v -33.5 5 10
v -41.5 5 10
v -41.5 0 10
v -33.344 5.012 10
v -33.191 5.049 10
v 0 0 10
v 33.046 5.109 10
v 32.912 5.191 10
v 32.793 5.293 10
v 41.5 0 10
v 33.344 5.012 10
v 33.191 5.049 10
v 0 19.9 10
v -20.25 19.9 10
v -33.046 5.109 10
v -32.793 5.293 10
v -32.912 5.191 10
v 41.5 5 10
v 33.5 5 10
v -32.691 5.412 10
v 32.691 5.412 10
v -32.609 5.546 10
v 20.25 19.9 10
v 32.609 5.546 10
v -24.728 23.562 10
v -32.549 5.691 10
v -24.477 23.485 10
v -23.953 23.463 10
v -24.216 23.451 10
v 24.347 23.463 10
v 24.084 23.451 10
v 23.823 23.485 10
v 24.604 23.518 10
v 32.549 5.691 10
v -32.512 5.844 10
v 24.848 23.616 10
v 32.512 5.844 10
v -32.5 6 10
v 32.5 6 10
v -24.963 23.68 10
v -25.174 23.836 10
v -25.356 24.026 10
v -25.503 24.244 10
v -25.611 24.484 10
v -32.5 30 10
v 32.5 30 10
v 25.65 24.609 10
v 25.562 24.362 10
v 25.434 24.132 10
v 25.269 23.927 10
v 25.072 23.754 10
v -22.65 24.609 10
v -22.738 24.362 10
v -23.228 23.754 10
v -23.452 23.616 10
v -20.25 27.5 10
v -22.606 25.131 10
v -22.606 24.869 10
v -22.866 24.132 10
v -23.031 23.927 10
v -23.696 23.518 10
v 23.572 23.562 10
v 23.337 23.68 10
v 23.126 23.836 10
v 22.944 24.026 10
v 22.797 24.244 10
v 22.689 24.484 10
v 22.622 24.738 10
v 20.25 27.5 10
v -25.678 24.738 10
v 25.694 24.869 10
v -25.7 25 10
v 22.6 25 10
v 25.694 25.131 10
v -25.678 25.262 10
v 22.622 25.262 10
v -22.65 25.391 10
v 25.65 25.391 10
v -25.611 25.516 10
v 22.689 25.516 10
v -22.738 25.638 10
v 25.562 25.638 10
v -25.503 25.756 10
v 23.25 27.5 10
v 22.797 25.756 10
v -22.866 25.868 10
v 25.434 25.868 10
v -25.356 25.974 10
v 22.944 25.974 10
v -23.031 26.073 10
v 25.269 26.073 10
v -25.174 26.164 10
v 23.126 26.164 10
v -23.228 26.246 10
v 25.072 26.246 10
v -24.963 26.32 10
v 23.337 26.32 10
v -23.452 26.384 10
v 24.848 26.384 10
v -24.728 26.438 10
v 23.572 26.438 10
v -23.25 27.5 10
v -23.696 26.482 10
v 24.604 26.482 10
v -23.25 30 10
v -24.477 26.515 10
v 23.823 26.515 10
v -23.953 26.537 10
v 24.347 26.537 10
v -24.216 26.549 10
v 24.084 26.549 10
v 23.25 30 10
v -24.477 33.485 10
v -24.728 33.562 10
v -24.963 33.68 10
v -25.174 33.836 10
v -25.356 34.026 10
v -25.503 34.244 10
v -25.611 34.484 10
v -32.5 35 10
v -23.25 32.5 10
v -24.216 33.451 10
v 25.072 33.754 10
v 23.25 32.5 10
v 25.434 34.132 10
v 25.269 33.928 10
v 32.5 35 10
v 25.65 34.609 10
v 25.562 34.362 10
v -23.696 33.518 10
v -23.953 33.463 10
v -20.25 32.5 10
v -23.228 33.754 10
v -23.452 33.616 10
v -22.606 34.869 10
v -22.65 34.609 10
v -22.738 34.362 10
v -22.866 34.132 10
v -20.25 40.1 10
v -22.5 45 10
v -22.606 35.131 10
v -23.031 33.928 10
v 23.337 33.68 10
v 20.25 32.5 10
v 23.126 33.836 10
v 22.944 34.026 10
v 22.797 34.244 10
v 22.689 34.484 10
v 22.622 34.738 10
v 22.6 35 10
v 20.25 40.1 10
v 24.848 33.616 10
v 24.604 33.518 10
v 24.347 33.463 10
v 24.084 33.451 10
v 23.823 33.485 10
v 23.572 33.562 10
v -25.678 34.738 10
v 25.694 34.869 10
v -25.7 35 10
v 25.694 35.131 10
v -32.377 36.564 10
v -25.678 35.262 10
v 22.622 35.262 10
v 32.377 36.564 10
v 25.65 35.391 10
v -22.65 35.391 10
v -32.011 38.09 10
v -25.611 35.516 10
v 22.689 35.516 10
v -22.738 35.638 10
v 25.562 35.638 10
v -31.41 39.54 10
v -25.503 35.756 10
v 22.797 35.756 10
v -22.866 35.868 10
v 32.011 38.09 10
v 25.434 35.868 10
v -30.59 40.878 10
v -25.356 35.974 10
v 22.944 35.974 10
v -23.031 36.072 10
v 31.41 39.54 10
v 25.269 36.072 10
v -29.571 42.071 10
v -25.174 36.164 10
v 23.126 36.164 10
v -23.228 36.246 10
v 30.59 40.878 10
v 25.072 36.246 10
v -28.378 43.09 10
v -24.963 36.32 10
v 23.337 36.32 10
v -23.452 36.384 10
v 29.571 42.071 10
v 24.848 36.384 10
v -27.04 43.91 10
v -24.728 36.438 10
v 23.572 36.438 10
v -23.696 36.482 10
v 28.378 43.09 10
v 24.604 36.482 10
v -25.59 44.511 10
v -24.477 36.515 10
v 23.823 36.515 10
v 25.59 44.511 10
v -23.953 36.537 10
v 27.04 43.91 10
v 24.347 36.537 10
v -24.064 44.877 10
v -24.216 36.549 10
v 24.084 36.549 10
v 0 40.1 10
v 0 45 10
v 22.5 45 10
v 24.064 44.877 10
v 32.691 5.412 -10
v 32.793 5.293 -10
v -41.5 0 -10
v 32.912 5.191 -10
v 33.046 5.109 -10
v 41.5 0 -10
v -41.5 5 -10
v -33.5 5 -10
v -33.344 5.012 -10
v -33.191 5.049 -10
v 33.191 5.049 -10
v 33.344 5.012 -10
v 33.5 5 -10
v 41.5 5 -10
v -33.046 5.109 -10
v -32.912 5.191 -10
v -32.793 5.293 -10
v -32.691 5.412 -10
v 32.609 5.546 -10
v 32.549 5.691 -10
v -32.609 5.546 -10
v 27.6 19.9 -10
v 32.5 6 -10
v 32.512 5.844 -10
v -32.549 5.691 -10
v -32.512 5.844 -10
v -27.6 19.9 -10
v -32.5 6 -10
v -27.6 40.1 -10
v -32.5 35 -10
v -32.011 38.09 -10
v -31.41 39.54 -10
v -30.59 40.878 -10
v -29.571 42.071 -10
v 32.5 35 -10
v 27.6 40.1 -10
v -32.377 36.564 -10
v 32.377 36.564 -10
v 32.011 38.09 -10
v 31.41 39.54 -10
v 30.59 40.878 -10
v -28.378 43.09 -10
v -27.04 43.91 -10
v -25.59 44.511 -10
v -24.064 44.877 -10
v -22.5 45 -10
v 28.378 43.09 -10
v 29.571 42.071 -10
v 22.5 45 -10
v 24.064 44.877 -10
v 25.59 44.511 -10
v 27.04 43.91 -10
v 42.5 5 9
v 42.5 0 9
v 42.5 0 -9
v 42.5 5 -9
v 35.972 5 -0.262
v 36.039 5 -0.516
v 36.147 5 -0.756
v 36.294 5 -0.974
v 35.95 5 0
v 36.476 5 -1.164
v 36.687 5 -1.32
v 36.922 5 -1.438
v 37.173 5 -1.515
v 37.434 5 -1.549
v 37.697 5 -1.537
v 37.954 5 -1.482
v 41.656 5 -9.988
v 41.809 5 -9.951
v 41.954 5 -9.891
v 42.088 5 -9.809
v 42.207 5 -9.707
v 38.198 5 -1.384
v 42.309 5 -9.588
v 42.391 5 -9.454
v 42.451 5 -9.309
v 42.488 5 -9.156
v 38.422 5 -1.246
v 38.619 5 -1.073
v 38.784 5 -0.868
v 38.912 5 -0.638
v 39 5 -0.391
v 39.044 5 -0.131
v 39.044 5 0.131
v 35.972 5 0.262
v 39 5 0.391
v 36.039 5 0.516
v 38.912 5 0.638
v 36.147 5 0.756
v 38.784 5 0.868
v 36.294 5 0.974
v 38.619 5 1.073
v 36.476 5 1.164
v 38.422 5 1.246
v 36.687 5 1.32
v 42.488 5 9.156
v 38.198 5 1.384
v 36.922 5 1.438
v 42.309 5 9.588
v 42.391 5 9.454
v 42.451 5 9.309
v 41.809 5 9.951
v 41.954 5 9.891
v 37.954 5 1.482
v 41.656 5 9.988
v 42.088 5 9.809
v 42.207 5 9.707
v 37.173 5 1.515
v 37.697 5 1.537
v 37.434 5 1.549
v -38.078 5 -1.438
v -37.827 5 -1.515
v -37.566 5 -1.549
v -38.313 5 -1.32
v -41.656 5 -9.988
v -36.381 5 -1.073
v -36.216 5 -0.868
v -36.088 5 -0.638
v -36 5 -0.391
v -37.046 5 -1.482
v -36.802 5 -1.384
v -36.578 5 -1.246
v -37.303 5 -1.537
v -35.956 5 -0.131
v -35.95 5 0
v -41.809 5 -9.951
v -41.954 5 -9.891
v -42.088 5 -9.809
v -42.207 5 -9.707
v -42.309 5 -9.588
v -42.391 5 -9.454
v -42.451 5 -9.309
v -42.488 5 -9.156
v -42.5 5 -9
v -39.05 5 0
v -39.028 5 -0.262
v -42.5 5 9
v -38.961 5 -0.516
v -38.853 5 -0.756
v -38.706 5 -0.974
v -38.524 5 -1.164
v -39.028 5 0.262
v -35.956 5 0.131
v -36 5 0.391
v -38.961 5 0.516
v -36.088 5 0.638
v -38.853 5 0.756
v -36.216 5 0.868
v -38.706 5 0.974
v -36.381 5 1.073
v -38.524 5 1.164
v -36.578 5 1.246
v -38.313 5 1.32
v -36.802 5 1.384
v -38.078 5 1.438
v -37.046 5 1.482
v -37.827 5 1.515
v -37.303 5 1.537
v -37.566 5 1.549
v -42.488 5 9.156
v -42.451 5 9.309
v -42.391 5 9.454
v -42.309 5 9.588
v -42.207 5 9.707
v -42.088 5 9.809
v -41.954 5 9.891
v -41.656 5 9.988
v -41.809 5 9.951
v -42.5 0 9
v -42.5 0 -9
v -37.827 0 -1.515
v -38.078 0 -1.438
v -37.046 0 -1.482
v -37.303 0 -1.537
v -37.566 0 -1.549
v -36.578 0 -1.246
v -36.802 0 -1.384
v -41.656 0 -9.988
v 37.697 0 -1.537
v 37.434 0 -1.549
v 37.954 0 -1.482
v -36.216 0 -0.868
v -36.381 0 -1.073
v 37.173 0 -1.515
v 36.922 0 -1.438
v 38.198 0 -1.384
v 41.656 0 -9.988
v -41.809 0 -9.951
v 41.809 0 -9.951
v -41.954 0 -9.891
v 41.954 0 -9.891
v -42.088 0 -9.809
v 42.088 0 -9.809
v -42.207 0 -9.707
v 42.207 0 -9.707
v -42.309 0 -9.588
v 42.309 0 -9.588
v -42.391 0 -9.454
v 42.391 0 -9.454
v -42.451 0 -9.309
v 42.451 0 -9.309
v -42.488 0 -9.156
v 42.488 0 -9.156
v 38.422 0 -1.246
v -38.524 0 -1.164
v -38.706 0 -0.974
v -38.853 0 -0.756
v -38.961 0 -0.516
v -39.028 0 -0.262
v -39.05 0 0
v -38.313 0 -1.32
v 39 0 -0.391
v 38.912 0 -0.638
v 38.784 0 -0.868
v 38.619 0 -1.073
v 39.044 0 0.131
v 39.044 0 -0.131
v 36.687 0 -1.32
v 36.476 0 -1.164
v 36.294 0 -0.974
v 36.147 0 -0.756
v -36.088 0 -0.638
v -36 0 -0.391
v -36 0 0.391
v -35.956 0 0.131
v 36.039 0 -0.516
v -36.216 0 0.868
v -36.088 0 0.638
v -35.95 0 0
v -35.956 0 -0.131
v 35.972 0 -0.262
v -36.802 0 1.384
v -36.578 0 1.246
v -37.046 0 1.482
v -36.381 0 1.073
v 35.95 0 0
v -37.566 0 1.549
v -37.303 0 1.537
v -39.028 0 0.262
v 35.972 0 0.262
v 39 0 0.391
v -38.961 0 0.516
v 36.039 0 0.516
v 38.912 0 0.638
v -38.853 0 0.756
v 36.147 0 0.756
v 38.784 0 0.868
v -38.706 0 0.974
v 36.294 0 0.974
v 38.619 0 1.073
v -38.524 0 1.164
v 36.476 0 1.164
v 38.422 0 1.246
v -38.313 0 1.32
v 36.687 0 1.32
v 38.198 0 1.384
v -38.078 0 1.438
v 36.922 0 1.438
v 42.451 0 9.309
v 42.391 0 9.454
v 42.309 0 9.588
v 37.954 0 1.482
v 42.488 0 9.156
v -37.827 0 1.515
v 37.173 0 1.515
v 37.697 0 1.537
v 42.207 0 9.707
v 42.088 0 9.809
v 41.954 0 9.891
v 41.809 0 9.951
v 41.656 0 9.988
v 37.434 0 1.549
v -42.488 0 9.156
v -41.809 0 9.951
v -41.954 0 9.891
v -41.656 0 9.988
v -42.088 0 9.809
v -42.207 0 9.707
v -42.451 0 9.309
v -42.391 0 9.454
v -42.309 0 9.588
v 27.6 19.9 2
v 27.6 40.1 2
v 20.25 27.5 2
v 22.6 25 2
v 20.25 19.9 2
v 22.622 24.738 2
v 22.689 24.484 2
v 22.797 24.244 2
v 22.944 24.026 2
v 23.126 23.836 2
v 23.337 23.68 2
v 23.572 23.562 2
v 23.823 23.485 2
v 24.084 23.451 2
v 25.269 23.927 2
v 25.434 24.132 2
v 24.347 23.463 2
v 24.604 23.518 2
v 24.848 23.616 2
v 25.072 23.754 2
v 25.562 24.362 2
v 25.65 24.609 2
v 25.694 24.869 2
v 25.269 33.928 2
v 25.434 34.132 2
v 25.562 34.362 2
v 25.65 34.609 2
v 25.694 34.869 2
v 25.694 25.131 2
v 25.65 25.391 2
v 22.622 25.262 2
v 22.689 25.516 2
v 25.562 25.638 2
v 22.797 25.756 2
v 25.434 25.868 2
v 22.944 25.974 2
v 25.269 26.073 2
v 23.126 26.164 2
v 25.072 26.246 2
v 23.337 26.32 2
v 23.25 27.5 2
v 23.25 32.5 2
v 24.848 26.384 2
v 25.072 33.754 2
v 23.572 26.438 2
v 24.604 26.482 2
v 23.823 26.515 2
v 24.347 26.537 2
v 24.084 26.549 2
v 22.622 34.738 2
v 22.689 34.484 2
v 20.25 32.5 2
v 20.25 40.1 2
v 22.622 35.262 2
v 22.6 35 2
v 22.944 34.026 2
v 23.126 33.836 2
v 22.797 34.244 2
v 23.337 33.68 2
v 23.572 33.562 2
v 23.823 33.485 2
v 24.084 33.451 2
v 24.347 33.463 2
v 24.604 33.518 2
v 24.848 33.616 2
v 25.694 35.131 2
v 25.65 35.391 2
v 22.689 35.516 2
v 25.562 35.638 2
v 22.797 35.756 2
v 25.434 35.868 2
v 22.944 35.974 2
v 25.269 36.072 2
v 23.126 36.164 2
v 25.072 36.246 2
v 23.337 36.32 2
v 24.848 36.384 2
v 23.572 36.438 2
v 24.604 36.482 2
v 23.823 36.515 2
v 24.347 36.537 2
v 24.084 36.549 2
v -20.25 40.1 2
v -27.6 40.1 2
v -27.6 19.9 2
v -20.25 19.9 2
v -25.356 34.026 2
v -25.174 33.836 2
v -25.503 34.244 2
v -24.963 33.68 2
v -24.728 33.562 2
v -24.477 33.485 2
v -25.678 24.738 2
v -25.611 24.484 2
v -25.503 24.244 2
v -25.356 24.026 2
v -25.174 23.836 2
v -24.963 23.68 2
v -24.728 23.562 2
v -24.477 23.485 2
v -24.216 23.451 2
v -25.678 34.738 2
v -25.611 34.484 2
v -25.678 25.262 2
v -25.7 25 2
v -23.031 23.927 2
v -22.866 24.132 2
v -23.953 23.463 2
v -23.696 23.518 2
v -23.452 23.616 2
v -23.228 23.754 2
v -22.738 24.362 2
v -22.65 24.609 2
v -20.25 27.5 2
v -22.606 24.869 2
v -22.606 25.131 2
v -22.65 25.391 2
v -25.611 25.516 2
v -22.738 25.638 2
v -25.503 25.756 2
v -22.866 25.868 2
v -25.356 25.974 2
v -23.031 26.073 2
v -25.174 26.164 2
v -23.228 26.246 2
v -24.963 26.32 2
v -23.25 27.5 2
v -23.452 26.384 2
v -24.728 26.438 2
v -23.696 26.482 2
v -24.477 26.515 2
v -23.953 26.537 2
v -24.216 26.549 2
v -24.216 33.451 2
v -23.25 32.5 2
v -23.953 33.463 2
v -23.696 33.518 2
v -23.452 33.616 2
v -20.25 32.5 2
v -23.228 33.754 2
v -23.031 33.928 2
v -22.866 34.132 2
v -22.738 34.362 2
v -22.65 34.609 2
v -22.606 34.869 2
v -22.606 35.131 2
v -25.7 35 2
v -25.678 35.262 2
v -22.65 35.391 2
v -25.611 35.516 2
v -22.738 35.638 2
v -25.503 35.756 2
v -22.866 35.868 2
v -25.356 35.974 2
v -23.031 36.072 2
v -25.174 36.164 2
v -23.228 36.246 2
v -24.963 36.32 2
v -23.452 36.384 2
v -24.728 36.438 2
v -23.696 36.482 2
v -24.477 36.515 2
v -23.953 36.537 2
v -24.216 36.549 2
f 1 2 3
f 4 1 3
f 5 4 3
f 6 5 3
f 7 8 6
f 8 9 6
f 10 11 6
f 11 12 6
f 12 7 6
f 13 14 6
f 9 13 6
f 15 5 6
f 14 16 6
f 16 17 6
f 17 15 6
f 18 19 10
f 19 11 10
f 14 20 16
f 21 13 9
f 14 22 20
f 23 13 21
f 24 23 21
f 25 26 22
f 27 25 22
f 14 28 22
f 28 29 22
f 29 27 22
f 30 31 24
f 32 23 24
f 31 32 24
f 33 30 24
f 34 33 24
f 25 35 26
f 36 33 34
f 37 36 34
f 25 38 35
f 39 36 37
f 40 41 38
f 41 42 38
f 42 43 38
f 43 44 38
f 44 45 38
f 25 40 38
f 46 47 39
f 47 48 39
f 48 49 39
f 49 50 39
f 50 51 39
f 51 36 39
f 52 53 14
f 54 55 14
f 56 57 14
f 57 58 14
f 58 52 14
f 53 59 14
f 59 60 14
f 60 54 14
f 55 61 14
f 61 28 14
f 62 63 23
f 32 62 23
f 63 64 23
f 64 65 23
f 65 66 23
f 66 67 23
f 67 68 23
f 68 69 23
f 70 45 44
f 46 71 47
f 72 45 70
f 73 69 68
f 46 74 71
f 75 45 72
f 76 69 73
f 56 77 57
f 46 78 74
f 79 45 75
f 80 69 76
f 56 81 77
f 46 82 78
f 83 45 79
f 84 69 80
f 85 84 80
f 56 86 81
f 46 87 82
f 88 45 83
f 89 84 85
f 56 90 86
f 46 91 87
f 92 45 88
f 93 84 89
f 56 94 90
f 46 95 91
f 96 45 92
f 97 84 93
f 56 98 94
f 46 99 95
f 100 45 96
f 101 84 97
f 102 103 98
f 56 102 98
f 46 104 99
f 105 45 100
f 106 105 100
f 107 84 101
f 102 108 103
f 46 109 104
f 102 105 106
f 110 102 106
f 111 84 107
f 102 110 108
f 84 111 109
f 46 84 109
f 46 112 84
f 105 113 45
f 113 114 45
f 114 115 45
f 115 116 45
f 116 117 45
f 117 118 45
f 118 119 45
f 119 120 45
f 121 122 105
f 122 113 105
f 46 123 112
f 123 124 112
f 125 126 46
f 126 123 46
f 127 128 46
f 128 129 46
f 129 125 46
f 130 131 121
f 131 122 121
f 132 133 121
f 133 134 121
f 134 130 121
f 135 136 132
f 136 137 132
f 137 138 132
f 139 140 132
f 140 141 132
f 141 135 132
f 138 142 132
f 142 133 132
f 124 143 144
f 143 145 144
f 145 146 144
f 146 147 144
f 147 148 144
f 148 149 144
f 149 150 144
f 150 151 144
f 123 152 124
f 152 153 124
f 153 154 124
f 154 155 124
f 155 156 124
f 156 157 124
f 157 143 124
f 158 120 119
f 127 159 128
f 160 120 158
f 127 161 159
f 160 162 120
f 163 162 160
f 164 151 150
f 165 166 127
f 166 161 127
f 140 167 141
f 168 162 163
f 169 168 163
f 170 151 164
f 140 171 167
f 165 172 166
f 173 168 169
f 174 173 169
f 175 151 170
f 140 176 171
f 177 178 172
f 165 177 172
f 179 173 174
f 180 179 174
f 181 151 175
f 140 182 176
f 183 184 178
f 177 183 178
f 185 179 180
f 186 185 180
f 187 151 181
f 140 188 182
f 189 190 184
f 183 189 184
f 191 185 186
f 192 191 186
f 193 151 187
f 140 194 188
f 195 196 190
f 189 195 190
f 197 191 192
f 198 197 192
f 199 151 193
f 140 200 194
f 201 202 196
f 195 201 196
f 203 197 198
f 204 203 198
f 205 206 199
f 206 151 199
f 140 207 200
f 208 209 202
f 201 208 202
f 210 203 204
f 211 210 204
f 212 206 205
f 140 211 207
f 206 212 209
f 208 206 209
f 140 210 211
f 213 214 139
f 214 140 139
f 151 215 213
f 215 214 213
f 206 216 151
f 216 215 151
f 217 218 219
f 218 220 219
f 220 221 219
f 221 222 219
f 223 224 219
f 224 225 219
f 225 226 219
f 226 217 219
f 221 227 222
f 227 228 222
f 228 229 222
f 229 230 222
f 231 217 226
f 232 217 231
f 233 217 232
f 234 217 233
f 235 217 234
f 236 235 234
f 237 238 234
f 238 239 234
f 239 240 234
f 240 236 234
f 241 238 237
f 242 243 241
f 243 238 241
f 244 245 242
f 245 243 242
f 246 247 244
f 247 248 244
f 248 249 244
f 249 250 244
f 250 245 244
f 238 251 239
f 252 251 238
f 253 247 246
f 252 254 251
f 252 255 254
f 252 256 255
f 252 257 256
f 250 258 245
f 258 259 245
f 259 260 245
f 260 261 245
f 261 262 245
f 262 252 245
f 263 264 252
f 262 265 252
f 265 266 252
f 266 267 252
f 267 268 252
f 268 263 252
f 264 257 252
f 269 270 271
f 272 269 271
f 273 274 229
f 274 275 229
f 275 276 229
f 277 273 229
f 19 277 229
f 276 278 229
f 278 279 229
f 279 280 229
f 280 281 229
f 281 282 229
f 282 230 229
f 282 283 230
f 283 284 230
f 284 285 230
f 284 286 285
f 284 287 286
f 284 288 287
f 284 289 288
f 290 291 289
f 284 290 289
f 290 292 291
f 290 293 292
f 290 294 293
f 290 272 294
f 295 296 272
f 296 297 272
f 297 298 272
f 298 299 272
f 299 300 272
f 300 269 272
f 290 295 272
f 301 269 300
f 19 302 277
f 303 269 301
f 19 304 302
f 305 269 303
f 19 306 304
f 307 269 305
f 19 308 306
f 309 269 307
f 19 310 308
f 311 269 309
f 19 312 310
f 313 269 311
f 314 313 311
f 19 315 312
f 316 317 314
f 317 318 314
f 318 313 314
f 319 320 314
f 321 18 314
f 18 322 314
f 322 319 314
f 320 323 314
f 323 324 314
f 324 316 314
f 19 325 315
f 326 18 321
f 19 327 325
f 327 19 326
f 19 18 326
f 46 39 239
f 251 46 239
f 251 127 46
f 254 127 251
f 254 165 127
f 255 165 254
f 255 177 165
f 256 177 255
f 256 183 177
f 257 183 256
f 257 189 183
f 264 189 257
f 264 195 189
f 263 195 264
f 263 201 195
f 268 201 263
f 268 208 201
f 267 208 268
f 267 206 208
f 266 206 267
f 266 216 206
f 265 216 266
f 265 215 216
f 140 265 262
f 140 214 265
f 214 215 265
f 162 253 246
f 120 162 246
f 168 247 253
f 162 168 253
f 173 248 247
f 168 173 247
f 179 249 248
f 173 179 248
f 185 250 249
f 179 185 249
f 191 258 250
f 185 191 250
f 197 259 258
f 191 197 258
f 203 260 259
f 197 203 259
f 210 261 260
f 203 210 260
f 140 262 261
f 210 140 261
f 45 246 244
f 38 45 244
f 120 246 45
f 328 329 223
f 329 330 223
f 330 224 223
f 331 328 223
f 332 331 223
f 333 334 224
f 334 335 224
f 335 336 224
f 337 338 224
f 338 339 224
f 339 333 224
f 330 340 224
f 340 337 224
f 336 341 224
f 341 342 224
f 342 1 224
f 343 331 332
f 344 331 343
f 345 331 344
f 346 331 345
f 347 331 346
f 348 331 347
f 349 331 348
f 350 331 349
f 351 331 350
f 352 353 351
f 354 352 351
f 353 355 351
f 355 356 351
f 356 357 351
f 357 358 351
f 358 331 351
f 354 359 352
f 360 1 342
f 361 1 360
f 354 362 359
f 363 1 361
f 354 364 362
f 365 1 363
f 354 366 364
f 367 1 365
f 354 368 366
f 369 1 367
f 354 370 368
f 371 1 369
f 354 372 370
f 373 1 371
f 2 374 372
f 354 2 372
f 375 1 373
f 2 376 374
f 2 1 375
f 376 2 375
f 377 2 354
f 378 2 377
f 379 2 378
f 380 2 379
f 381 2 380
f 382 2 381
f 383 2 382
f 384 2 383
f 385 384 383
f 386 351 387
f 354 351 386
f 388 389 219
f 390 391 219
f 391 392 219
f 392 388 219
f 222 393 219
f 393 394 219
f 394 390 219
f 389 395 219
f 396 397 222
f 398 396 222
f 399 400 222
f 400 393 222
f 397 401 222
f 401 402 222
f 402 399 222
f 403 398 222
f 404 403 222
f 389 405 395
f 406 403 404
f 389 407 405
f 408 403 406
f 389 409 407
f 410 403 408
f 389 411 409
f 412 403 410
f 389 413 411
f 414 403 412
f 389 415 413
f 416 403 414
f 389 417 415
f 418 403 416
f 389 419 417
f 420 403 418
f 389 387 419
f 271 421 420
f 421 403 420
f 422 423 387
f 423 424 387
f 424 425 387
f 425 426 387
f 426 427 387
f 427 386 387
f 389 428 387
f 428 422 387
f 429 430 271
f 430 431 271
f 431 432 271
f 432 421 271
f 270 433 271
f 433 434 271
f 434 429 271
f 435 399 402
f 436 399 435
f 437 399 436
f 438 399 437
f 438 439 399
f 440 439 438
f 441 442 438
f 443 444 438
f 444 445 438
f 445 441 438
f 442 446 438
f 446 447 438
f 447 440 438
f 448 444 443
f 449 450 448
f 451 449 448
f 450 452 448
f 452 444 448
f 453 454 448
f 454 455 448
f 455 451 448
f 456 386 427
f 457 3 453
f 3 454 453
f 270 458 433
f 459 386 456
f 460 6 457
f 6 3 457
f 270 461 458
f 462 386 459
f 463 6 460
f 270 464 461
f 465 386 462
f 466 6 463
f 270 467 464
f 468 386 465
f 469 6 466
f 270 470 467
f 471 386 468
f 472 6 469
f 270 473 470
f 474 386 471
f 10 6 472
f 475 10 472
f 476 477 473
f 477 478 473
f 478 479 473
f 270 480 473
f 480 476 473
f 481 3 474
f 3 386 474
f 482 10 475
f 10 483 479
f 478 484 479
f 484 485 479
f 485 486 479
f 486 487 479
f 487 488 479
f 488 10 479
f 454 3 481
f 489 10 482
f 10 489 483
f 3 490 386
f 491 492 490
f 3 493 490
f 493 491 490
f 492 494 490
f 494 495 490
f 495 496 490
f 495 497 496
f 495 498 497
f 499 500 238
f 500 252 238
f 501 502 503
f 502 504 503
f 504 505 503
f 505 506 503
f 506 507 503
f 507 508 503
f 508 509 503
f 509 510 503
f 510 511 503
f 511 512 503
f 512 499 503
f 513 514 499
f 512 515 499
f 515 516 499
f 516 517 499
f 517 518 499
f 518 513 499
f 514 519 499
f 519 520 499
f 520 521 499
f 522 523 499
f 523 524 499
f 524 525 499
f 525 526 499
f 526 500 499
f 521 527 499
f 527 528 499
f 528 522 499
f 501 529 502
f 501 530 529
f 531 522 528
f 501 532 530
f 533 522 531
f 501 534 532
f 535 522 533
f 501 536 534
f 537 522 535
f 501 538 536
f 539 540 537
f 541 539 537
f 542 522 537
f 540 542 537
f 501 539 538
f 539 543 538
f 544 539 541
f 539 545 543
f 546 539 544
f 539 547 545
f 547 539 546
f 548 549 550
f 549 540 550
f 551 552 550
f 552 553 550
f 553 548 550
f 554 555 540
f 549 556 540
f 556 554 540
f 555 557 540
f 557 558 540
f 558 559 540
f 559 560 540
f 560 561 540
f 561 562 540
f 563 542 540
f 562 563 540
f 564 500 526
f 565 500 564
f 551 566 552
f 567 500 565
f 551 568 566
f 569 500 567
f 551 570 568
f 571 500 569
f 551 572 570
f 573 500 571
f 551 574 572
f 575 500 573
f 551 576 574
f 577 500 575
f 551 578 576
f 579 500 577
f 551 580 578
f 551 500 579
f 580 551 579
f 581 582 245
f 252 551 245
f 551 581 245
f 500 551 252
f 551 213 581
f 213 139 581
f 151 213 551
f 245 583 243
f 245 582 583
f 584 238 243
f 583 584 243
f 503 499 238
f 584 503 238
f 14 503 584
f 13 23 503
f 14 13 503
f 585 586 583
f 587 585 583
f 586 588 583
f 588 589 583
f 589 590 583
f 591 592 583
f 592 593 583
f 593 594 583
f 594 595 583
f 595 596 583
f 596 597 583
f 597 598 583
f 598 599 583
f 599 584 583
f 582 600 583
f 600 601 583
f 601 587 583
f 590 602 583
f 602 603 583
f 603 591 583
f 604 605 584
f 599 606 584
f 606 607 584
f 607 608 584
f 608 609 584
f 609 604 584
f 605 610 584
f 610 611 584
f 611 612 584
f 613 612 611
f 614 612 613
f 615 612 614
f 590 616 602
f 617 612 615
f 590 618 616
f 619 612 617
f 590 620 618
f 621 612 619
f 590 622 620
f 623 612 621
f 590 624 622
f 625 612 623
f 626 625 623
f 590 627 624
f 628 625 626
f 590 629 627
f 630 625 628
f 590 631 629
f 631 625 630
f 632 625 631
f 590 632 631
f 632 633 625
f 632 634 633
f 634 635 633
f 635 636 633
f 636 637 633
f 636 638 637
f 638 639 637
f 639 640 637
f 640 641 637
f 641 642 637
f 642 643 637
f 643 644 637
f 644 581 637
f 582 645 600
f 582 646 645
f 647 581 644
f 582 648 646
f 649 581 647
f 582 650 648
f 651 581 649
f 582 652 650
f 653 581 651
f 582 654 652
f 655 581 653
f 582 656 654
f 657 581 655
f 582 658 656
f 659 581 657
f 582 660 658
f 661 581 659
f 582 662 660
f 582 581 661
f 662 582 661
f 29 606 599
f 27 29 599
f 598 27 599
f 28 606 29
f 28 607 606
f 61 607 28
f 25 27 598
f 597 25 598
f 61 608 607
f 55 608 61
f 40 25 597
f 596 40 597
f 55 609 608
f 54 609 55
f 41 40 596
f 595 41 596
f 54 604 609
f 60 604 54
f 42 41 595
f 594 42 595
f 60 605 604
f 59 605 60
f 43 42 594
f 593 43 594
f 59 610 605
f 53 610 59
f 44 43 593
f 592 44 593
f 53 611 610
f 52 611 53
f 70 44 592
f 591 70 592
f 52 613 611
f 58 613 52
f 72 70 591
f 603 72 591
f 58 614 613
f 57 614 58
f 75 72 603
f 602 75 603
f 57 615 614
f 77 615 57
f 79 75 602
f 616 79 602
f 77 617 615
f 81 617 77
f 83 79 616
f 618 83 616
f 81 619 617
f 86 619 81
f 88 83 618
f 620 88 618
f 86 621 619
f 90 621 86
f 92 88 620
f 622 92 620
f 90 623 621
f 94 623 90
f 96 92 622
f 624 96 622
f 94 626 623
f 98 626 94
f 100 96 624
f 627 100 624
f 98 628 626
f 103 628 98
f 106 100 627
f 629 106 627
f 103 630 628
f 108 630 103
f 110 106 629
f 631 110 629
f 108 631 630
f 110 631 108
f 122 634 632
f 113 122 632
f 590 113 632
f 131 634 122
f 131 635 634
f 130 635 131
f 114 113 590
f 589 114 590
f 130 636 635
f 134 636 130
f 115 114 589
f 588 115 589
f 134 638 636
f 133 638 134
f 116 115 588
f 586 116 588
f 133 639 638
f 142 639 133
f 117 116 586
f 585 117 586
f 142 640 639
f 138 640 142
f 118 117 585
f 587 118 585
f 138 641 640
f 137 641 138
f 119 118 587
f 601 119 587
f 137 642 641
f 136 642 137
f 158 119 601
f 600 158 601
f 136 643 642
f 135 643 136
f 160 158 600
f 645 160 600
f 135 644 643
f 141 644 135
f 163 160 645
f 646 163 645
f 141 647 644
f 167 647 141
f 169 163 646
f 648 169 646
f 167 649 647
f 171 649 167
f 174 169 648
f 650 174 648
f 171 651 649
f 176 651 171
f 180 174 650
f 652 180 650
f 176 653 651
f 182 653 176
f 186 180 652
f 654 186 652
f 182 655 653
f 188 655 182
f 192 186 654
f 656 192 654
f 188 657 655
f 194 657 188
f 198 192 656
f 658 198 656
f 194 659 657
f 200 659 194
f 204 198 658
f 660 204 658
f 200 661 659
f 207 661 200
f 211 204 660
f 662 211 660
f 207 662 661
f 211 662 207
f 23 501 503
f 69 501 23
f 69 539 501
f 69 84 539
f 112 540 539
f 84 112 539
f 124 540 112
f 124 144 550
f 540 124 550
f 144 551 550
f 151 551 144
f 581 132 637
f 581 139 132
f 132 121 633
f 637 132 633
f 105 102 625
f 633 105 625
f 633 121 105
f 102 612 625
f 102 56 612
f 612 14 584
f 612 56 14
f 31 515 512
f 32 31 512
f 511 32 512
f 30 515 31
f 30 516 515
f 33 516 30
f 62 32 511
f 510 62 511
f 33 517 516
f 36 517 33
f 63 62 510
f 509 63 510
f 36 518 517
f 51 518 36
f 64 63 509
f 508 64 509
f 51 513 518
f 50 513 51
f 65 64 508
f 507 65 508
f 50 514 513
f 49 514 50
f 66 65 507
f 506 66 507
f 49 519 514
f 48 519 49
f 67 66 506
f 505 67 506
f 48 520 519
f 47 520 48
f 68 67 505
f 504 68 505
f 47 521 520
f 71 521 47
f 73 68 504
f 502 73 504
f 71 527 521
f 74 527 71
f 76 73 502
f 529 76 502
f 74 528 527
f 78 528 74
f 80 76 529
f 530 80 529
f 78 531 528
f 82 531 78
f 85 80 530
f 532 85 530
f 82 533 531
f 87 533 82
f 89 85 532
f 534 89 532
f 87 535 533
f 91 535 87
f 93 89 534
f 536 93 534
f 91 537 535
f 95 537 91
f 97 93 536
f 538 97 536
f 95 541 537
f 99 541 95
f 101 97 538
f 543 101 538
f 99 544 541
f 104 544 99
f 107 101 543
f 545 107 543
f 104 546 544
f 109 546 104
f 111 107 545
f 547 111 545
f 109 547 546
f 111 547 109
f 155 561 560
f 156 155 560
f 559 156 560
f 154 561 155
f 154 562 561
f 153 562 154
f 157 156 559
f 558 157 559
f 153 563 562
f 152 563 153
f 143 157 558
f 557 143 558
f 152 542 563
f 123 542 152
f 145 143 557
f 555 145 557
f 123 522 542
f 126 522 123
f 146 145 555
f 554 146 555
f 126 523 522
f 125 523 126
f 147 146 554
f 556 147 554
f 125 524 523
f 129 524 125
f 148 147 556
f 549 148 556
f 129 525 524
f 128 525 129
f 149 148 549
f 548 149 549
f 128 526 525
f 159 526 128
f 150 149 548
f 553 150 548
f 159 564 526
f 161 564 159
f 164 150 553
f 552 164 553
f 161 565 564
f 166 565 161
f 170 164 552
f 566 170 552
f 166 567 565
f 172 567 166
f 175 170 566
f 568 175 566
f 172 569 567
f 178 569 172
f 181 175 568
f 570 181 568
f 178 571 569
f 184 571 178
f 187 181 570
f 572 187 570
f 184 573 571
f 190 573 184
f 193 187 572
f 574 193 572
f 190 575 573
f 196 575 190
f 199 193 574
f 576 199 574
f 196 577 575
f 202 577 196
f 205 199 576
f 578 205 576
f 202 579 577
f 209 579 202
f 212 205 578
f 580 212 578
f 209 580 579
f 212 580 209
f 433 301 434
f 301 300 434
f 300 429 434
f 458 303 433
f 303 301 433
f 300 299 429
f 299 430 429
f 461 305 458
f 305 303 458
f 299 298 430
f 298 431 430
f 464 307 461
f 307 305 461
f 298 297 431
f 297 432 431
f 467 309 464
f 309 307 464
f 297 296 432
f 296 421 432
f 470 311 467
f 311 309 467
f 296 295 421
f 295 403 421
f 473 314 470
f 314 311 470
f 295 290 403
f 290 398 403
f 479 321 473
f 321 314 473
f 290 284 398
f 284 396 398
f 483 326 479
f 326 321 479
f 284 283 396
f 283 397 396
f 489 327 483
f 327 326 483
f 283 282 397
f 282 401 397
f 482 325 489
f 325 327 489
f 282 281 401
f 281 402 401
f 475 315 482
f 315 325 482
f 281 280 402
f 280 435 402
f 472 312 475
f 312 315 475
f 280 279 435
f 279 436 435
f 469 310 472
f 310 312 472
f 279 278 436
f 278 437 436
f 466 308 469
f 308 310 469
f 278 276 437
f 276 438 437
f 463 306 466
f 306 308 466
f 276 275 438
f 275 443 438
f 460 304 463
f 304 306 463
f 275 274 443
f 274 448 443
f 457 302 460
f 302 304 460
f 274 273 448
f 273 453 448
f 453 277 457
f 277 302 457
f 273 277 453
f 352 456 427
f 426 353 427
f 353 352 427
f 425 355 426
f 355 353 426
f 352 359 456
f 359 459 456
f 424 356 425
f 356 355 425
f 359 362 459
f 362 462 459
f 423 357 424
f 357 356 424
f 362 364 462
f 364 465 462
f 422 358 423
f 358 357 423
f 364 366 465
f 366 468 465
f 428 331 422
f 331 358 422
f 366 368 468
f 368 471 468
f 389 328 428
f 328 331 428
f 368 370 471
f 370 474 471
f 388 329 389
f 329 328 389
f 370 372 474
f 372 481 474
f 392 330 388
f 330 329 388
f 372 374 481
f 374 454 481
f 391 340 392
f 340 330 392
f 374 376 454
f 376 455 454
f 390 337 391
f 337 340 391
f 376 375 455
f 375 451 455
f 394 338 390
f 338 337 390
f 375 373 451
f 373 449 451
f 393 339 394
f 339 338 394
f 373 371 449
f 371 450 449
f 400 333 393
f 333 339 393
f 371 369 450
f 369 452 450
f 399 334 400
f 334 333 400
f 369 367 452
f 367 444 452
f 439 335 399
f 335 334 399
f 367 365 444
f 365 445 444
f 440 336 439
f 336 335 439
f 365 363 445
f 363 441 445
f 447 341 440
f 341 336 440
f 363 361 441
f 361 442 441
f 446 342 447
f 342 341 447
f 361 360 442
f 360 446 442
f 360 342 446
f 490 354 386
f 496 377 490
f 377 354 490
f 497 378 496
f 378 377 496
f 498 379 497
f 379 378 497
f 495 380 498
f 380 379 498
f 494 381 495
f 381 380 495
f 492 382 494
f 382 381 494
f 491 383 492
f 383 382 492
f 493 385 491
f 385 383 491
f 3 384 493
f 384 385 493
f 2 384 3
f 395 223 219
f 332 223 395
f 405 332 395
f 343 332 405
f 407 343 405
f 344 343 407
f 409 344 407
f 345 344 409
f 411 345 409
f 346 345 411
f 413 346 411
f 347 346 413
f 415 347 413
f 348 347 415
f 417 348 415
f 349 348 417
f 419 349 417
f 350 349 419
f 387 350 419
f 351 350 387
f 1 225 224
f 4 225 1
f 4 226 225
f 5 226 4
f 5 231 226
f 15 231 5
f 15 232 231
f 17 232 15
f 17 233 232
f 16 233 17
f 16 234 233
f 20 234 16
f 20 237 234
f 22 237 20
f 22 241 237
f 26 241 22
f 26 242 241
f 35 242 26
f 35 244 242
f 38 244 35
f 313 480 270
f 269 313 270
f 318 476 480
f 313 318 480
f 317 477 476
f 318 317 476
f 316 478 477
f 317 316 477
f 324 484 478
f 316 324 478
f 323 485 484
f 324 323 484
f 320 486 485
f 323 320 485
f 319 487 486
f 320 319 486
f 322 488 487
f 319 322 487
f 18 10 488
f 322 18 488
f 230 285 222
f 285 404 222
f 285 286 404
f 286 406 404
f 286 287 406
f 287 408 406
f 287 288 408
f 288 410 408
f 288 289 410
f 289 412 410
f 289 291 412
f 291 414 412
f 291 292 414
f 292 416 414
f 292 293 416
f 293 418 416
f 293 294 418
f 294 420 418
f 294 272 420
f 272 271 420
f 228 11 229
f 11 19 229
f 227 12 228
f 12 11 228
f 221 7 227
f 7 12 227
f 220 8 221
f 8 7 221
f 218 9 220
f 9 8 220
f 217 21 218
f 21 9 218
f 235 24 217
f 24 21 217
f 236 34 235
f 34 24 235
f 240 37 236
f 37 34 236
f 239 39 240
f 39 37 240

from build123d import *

# Parameters (mm, degrees)
BOSS_EXTRUDE1_DEPTH = 10
SKETCH3_R           = 1.55
CUT_EXTRUDE1_DEPTH  = 12
SKETCH3_3_R         = 1.55
CUT_EXTRUDE3_DEPTH  = 66.048059156
SKETCH5_R           = 1.55
CUT_EXTRUDE4_DEPTH  = 60.213596412
FILLET1_R           = 1


with BuildPart() as part:
    # Sketch1 → Boss-Extrude1 (new, symmetric)
    with BuildSketch(Plane.XY):
        with BuildLine():
            Line((-42.5, 0), (42.5, 0))
            Line((42.5, 0), (42.5, 5))
            Line((42.5, 5), (32.5, 5))
            Line((32.5, 5), (32.5, 35))
            ThreePointArc((32.5, 35), (29.571067812, 42.071067812), (22.5, 45))
            Line((22.5, 45), (-22.5, 45))
            ThreePointArc((-22.5, 45), (-29.571067812, 42.071067812), (-32.5, 35))
            Line((-32.5, 35), (-32.5, 5))
            Line((-32.5, 5), (-42.5, 5))
            Line((-42.5, 5), (-42.5, 0))
        make_face()
    extrude(amount=BOSS_EXTRUDE1_DEPTH, both=True)

    # Sketch3 → Cut-Extrude1 (cut)
    # profile 1 of 2: a face of its own
    with BuildSketch(Plane(origin=(0, 0, -10), x_dir=(-1, 0, 0), z_dir=(0, 0, -1))):
        Polygon((-27.6, 40.1), (-27.6, 19.9), (-20.25, 19.9), (-20.25, 27.5), (-23.25, 27.5), (-23.25, 32.5), (-20.25, 32.5), (-20.25, 40.1), align=None)
        with Locations((-24.15, 25)):
            Circle(SKETCH3_R, mode=Mode.SUBTRACT)
        with Locations((-24.15, 35)):
            Circle(SKETCH3_R, mode=Mode.SUBTRACT)
    # profile 2 of 2: a face of its own
    with BuildSketch(Plane(origin=(0, 0, -10), x_dir=(-1, 0, 0), z_dir=(0, 0, -1))):
        Polygon((20.25, 27.5), (20.25, 19.9), (27.6, 19.9), (27.6, 40.1), (20.25, 40.1), (20.25, 32.5), (23.25, 32.5), (23.25, 27.5), align=None)
        with Locations((24.15, 25)):
            Circle(SKETCH3_R, mode=Mode.SUBTRACT)
        with Locations((24.15, 35)):
            Circle(SKETCH3_R, mode=Mode.SUBTRACT)
    extrude(amount=-CUT_EXTRUDE1_DEPTH, mode=Mode.SUBTRACT)

    # Sketch3<3> → Cut-Extrude3 (cut, through all)
    with BuildSketch(Plane(origin=(0, 0, -10), x_dir=(-1, 0, 0), z_dir=(0, 0, -1))):
        Polygon((-20.25, 27.5), (-20.25, 19.9), (20.25, 19.9), (20.25, 27.5), (23.25, 27.5), (23.25, 32.5), (20.25, 32.5), (20.25, 40.1), (-20.25, 40.1), (-20.25, 32.5), (-23.25, 32.5), (-23.25, 27.5), align=None)
        with Locations((-24.15, 25)):
            Circle(SKETCH3_3_R)
        with Locations((24.15, 25)):
            Circle(SKETCH3_3_R)
        with Locations((-24.15, 35)):
            Circle(SKETCH3_3_R)
        with Locations((24.15, 35)):
            Circle(SKETCH3_3_R)
    extrude(amount=-CUT_EXTRUDE3_DEPTH, mode=Mode.SUBTRACT)

    # Sketch5 → Cut-Extrude4 (cut, through all)
    with BuildSketch(Plane(origin=(0, 5, 0), x_dir=(1, 0, 0), z_dir=(0, 1, 0))):
        with Locations((37.5, 0)):
            Circle(SKETCH5_R)
    cut_extrude4 = extrude(amount=-CUT_EXTRUDE4_DEPTH, mode=Mode.SUBTRACT)

    # Mirror3: Cut-Extrude4 across plane
    add(cut_extrude4.mirror(Plane(origin=(0, 0, 0), x_dir=(0, 0, 1), z_dir=(1, 0, 0))), mode=Mode.SUBTRACT)

    # Fillet1
    fillet1_edges = [part.edges().sort_by_distance(p)[0] for p in [
        (42.5, 2.5, 10),
        (42.5, 2.5, -10),
        (32.5, 5, 0),
        (-42.5, 2.5, 10),
        (-42.5, 2.5, -10),
        (-32.5, 5, 0),
    ]]
    fillet(fillet1_edges, radius=FILLET1_R)


solid = part.part
